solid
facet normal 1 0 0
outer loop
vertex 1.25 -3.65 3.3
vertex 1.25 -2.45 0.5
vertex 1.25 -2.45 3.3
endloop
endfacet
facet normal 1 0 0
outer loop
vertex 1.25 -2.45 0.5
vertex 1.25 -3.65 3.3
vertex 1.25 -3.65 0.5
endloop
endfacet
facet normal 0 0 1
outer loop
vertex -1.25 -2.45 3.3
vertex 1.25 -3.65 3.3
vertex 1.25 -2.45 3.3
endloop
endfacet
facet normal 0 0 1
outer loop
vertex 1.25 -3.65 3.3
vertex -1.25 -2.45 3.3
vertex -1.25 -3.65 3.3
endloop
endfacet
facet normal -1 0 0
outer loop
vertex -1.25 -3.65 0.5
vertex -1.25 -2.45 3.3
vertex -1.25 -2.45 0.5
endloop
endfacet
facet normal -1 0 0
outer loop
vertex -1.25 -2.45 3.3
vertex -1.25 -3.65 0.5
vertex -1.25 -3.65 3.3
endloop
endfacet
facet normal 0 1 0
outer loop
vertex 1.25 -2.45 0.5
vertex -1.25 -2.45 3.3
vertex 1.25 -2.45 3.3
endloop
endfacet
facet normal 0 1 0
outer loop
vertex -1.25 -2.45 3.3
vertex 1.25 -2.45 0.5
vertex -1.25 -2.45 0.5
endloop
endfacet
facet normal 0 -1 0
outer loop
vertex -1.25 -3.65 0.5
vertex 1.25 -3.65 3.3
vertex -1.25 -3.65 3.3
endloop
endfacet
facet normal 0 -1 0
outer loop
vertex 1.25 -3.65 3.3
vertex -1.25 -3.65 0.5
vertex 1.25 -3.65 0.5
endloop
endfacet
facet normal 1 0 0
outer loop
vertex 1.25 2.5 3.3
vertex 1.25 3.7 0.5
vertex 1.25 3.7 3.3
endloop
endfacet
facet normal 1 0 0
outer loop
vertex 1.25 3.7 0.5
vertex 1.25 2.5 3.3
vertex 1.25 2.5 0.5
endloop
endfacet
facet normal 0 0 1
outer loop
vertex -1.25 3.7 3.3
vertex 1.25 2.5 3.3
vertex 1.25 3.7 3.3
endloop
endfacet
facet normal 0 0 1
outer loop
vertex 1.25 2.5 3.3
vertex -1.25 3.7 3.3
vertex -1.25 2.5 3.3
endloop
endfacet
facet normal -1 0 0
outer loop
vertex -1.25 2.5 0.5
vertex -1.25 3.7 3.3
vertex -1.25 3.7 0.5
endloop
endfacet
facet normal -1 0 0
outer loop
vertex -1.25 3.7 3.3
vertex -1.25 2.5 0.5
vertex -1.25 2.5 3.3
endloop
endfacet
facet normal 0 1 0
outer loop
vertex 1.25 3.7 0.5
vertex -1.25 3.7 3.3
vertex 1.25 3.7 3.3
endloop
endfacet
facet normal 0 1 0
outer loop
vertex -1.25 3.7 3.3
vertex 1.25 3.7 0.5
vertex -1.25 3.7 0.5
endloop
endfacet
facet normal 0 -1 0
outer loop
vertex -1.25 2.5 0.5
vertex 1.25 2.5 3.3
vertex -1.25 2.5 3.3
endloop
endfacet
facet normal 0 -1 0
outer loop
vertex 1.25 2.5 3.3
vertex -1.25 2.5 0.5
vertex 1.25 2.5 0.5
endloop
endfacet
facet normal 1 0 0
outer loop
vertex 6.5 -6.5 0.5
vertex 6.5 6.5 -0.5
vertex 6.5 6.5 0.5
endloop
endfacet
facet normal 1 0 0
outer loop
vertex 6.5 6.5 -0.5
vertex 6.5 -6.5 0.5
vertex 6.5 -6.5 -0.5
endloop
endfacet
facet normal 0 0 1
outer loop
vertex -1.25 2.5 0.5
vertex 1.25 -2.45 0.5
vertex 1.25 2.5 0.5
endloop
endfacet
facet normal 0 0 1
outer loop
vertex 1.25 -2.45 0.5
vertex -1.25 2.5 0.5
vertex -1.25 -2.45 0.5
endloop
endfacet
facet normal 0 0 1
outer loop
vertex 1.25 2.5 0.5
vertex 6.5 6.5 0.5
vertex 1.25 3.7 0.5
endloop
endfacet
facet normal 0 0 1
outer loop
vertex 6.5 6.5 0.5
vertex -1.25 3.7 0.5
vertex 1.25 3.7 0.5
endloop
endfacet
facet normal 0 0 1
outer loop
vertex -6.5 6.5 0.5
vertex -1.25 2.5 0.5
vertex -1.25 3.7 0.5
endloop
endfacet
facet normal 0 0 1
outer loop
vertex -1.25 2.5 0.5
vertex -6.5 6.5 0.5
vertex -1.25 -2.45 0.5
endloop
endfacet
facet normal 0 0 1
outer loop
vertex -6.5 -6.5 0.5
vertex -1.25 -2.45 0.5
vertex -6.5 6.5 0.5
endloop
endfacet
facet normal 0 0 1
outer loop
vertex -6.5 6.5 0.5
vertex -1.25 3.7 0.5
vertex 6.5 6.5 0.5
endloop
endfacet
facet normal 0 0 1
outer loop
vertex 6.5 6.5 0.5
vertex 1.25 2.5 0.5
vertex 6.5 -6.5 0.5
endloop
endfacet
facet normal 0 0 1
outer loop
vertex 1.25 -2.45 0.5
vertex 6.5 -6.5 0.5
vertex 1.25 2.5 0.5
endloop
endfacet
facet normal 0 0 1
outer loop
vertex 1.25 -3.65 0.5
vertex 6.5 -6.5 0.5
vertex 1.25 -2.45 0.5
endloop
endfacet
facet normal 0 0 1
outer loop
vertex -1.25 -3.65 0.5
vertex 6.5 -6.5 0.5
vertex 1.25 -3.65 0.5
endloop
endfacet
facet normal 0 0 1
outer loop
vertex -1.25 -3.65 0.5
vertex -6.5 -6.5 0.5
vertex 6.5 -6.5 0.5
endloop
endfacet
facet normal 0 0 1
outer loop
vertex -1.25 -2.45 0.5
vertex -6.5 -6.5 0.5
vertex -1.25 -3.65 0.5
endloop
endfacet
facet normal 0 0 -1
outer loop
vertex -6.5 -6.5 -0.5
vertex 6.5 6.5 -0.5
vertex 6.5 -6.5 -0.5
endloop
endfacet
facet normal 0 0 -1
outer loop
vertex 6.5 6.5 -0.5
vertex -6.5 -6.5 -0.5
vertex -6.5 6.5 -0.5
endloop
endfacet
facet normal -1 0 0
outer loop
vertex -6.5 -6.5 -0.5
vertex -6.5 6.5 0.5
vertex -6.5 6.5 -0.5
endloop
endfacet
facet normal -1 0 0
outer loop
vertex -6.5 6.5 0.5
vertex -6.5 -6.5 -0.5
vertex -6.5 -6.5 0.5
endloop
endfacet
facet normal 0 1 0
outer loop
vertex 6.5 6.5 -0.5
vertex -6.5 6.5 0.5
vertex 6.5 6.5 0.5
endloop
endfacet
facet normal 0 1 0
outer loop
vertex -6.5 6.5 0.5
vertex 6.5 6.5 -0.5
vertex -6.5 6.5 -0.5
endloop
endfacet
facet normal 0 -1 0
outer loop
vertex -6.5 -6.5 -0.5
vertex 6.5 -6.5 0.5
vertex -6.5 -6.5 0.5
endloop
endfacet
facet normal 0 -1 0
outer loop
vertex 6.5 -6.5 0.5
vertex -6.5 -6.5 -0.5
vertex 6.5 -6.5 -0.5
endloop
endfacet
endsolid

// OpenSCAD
$fa = 0.1;
$fs = 0.1;

translate([-1.25,-(5+2.3)/2,0]){
	cube([2.5,1.2,3.3]);
	translate([0,1.15+5,0])
		cube([2.5,1.2,3.3]);
}
translate([0,0,0])
	cube([13,13,1], center = true);
